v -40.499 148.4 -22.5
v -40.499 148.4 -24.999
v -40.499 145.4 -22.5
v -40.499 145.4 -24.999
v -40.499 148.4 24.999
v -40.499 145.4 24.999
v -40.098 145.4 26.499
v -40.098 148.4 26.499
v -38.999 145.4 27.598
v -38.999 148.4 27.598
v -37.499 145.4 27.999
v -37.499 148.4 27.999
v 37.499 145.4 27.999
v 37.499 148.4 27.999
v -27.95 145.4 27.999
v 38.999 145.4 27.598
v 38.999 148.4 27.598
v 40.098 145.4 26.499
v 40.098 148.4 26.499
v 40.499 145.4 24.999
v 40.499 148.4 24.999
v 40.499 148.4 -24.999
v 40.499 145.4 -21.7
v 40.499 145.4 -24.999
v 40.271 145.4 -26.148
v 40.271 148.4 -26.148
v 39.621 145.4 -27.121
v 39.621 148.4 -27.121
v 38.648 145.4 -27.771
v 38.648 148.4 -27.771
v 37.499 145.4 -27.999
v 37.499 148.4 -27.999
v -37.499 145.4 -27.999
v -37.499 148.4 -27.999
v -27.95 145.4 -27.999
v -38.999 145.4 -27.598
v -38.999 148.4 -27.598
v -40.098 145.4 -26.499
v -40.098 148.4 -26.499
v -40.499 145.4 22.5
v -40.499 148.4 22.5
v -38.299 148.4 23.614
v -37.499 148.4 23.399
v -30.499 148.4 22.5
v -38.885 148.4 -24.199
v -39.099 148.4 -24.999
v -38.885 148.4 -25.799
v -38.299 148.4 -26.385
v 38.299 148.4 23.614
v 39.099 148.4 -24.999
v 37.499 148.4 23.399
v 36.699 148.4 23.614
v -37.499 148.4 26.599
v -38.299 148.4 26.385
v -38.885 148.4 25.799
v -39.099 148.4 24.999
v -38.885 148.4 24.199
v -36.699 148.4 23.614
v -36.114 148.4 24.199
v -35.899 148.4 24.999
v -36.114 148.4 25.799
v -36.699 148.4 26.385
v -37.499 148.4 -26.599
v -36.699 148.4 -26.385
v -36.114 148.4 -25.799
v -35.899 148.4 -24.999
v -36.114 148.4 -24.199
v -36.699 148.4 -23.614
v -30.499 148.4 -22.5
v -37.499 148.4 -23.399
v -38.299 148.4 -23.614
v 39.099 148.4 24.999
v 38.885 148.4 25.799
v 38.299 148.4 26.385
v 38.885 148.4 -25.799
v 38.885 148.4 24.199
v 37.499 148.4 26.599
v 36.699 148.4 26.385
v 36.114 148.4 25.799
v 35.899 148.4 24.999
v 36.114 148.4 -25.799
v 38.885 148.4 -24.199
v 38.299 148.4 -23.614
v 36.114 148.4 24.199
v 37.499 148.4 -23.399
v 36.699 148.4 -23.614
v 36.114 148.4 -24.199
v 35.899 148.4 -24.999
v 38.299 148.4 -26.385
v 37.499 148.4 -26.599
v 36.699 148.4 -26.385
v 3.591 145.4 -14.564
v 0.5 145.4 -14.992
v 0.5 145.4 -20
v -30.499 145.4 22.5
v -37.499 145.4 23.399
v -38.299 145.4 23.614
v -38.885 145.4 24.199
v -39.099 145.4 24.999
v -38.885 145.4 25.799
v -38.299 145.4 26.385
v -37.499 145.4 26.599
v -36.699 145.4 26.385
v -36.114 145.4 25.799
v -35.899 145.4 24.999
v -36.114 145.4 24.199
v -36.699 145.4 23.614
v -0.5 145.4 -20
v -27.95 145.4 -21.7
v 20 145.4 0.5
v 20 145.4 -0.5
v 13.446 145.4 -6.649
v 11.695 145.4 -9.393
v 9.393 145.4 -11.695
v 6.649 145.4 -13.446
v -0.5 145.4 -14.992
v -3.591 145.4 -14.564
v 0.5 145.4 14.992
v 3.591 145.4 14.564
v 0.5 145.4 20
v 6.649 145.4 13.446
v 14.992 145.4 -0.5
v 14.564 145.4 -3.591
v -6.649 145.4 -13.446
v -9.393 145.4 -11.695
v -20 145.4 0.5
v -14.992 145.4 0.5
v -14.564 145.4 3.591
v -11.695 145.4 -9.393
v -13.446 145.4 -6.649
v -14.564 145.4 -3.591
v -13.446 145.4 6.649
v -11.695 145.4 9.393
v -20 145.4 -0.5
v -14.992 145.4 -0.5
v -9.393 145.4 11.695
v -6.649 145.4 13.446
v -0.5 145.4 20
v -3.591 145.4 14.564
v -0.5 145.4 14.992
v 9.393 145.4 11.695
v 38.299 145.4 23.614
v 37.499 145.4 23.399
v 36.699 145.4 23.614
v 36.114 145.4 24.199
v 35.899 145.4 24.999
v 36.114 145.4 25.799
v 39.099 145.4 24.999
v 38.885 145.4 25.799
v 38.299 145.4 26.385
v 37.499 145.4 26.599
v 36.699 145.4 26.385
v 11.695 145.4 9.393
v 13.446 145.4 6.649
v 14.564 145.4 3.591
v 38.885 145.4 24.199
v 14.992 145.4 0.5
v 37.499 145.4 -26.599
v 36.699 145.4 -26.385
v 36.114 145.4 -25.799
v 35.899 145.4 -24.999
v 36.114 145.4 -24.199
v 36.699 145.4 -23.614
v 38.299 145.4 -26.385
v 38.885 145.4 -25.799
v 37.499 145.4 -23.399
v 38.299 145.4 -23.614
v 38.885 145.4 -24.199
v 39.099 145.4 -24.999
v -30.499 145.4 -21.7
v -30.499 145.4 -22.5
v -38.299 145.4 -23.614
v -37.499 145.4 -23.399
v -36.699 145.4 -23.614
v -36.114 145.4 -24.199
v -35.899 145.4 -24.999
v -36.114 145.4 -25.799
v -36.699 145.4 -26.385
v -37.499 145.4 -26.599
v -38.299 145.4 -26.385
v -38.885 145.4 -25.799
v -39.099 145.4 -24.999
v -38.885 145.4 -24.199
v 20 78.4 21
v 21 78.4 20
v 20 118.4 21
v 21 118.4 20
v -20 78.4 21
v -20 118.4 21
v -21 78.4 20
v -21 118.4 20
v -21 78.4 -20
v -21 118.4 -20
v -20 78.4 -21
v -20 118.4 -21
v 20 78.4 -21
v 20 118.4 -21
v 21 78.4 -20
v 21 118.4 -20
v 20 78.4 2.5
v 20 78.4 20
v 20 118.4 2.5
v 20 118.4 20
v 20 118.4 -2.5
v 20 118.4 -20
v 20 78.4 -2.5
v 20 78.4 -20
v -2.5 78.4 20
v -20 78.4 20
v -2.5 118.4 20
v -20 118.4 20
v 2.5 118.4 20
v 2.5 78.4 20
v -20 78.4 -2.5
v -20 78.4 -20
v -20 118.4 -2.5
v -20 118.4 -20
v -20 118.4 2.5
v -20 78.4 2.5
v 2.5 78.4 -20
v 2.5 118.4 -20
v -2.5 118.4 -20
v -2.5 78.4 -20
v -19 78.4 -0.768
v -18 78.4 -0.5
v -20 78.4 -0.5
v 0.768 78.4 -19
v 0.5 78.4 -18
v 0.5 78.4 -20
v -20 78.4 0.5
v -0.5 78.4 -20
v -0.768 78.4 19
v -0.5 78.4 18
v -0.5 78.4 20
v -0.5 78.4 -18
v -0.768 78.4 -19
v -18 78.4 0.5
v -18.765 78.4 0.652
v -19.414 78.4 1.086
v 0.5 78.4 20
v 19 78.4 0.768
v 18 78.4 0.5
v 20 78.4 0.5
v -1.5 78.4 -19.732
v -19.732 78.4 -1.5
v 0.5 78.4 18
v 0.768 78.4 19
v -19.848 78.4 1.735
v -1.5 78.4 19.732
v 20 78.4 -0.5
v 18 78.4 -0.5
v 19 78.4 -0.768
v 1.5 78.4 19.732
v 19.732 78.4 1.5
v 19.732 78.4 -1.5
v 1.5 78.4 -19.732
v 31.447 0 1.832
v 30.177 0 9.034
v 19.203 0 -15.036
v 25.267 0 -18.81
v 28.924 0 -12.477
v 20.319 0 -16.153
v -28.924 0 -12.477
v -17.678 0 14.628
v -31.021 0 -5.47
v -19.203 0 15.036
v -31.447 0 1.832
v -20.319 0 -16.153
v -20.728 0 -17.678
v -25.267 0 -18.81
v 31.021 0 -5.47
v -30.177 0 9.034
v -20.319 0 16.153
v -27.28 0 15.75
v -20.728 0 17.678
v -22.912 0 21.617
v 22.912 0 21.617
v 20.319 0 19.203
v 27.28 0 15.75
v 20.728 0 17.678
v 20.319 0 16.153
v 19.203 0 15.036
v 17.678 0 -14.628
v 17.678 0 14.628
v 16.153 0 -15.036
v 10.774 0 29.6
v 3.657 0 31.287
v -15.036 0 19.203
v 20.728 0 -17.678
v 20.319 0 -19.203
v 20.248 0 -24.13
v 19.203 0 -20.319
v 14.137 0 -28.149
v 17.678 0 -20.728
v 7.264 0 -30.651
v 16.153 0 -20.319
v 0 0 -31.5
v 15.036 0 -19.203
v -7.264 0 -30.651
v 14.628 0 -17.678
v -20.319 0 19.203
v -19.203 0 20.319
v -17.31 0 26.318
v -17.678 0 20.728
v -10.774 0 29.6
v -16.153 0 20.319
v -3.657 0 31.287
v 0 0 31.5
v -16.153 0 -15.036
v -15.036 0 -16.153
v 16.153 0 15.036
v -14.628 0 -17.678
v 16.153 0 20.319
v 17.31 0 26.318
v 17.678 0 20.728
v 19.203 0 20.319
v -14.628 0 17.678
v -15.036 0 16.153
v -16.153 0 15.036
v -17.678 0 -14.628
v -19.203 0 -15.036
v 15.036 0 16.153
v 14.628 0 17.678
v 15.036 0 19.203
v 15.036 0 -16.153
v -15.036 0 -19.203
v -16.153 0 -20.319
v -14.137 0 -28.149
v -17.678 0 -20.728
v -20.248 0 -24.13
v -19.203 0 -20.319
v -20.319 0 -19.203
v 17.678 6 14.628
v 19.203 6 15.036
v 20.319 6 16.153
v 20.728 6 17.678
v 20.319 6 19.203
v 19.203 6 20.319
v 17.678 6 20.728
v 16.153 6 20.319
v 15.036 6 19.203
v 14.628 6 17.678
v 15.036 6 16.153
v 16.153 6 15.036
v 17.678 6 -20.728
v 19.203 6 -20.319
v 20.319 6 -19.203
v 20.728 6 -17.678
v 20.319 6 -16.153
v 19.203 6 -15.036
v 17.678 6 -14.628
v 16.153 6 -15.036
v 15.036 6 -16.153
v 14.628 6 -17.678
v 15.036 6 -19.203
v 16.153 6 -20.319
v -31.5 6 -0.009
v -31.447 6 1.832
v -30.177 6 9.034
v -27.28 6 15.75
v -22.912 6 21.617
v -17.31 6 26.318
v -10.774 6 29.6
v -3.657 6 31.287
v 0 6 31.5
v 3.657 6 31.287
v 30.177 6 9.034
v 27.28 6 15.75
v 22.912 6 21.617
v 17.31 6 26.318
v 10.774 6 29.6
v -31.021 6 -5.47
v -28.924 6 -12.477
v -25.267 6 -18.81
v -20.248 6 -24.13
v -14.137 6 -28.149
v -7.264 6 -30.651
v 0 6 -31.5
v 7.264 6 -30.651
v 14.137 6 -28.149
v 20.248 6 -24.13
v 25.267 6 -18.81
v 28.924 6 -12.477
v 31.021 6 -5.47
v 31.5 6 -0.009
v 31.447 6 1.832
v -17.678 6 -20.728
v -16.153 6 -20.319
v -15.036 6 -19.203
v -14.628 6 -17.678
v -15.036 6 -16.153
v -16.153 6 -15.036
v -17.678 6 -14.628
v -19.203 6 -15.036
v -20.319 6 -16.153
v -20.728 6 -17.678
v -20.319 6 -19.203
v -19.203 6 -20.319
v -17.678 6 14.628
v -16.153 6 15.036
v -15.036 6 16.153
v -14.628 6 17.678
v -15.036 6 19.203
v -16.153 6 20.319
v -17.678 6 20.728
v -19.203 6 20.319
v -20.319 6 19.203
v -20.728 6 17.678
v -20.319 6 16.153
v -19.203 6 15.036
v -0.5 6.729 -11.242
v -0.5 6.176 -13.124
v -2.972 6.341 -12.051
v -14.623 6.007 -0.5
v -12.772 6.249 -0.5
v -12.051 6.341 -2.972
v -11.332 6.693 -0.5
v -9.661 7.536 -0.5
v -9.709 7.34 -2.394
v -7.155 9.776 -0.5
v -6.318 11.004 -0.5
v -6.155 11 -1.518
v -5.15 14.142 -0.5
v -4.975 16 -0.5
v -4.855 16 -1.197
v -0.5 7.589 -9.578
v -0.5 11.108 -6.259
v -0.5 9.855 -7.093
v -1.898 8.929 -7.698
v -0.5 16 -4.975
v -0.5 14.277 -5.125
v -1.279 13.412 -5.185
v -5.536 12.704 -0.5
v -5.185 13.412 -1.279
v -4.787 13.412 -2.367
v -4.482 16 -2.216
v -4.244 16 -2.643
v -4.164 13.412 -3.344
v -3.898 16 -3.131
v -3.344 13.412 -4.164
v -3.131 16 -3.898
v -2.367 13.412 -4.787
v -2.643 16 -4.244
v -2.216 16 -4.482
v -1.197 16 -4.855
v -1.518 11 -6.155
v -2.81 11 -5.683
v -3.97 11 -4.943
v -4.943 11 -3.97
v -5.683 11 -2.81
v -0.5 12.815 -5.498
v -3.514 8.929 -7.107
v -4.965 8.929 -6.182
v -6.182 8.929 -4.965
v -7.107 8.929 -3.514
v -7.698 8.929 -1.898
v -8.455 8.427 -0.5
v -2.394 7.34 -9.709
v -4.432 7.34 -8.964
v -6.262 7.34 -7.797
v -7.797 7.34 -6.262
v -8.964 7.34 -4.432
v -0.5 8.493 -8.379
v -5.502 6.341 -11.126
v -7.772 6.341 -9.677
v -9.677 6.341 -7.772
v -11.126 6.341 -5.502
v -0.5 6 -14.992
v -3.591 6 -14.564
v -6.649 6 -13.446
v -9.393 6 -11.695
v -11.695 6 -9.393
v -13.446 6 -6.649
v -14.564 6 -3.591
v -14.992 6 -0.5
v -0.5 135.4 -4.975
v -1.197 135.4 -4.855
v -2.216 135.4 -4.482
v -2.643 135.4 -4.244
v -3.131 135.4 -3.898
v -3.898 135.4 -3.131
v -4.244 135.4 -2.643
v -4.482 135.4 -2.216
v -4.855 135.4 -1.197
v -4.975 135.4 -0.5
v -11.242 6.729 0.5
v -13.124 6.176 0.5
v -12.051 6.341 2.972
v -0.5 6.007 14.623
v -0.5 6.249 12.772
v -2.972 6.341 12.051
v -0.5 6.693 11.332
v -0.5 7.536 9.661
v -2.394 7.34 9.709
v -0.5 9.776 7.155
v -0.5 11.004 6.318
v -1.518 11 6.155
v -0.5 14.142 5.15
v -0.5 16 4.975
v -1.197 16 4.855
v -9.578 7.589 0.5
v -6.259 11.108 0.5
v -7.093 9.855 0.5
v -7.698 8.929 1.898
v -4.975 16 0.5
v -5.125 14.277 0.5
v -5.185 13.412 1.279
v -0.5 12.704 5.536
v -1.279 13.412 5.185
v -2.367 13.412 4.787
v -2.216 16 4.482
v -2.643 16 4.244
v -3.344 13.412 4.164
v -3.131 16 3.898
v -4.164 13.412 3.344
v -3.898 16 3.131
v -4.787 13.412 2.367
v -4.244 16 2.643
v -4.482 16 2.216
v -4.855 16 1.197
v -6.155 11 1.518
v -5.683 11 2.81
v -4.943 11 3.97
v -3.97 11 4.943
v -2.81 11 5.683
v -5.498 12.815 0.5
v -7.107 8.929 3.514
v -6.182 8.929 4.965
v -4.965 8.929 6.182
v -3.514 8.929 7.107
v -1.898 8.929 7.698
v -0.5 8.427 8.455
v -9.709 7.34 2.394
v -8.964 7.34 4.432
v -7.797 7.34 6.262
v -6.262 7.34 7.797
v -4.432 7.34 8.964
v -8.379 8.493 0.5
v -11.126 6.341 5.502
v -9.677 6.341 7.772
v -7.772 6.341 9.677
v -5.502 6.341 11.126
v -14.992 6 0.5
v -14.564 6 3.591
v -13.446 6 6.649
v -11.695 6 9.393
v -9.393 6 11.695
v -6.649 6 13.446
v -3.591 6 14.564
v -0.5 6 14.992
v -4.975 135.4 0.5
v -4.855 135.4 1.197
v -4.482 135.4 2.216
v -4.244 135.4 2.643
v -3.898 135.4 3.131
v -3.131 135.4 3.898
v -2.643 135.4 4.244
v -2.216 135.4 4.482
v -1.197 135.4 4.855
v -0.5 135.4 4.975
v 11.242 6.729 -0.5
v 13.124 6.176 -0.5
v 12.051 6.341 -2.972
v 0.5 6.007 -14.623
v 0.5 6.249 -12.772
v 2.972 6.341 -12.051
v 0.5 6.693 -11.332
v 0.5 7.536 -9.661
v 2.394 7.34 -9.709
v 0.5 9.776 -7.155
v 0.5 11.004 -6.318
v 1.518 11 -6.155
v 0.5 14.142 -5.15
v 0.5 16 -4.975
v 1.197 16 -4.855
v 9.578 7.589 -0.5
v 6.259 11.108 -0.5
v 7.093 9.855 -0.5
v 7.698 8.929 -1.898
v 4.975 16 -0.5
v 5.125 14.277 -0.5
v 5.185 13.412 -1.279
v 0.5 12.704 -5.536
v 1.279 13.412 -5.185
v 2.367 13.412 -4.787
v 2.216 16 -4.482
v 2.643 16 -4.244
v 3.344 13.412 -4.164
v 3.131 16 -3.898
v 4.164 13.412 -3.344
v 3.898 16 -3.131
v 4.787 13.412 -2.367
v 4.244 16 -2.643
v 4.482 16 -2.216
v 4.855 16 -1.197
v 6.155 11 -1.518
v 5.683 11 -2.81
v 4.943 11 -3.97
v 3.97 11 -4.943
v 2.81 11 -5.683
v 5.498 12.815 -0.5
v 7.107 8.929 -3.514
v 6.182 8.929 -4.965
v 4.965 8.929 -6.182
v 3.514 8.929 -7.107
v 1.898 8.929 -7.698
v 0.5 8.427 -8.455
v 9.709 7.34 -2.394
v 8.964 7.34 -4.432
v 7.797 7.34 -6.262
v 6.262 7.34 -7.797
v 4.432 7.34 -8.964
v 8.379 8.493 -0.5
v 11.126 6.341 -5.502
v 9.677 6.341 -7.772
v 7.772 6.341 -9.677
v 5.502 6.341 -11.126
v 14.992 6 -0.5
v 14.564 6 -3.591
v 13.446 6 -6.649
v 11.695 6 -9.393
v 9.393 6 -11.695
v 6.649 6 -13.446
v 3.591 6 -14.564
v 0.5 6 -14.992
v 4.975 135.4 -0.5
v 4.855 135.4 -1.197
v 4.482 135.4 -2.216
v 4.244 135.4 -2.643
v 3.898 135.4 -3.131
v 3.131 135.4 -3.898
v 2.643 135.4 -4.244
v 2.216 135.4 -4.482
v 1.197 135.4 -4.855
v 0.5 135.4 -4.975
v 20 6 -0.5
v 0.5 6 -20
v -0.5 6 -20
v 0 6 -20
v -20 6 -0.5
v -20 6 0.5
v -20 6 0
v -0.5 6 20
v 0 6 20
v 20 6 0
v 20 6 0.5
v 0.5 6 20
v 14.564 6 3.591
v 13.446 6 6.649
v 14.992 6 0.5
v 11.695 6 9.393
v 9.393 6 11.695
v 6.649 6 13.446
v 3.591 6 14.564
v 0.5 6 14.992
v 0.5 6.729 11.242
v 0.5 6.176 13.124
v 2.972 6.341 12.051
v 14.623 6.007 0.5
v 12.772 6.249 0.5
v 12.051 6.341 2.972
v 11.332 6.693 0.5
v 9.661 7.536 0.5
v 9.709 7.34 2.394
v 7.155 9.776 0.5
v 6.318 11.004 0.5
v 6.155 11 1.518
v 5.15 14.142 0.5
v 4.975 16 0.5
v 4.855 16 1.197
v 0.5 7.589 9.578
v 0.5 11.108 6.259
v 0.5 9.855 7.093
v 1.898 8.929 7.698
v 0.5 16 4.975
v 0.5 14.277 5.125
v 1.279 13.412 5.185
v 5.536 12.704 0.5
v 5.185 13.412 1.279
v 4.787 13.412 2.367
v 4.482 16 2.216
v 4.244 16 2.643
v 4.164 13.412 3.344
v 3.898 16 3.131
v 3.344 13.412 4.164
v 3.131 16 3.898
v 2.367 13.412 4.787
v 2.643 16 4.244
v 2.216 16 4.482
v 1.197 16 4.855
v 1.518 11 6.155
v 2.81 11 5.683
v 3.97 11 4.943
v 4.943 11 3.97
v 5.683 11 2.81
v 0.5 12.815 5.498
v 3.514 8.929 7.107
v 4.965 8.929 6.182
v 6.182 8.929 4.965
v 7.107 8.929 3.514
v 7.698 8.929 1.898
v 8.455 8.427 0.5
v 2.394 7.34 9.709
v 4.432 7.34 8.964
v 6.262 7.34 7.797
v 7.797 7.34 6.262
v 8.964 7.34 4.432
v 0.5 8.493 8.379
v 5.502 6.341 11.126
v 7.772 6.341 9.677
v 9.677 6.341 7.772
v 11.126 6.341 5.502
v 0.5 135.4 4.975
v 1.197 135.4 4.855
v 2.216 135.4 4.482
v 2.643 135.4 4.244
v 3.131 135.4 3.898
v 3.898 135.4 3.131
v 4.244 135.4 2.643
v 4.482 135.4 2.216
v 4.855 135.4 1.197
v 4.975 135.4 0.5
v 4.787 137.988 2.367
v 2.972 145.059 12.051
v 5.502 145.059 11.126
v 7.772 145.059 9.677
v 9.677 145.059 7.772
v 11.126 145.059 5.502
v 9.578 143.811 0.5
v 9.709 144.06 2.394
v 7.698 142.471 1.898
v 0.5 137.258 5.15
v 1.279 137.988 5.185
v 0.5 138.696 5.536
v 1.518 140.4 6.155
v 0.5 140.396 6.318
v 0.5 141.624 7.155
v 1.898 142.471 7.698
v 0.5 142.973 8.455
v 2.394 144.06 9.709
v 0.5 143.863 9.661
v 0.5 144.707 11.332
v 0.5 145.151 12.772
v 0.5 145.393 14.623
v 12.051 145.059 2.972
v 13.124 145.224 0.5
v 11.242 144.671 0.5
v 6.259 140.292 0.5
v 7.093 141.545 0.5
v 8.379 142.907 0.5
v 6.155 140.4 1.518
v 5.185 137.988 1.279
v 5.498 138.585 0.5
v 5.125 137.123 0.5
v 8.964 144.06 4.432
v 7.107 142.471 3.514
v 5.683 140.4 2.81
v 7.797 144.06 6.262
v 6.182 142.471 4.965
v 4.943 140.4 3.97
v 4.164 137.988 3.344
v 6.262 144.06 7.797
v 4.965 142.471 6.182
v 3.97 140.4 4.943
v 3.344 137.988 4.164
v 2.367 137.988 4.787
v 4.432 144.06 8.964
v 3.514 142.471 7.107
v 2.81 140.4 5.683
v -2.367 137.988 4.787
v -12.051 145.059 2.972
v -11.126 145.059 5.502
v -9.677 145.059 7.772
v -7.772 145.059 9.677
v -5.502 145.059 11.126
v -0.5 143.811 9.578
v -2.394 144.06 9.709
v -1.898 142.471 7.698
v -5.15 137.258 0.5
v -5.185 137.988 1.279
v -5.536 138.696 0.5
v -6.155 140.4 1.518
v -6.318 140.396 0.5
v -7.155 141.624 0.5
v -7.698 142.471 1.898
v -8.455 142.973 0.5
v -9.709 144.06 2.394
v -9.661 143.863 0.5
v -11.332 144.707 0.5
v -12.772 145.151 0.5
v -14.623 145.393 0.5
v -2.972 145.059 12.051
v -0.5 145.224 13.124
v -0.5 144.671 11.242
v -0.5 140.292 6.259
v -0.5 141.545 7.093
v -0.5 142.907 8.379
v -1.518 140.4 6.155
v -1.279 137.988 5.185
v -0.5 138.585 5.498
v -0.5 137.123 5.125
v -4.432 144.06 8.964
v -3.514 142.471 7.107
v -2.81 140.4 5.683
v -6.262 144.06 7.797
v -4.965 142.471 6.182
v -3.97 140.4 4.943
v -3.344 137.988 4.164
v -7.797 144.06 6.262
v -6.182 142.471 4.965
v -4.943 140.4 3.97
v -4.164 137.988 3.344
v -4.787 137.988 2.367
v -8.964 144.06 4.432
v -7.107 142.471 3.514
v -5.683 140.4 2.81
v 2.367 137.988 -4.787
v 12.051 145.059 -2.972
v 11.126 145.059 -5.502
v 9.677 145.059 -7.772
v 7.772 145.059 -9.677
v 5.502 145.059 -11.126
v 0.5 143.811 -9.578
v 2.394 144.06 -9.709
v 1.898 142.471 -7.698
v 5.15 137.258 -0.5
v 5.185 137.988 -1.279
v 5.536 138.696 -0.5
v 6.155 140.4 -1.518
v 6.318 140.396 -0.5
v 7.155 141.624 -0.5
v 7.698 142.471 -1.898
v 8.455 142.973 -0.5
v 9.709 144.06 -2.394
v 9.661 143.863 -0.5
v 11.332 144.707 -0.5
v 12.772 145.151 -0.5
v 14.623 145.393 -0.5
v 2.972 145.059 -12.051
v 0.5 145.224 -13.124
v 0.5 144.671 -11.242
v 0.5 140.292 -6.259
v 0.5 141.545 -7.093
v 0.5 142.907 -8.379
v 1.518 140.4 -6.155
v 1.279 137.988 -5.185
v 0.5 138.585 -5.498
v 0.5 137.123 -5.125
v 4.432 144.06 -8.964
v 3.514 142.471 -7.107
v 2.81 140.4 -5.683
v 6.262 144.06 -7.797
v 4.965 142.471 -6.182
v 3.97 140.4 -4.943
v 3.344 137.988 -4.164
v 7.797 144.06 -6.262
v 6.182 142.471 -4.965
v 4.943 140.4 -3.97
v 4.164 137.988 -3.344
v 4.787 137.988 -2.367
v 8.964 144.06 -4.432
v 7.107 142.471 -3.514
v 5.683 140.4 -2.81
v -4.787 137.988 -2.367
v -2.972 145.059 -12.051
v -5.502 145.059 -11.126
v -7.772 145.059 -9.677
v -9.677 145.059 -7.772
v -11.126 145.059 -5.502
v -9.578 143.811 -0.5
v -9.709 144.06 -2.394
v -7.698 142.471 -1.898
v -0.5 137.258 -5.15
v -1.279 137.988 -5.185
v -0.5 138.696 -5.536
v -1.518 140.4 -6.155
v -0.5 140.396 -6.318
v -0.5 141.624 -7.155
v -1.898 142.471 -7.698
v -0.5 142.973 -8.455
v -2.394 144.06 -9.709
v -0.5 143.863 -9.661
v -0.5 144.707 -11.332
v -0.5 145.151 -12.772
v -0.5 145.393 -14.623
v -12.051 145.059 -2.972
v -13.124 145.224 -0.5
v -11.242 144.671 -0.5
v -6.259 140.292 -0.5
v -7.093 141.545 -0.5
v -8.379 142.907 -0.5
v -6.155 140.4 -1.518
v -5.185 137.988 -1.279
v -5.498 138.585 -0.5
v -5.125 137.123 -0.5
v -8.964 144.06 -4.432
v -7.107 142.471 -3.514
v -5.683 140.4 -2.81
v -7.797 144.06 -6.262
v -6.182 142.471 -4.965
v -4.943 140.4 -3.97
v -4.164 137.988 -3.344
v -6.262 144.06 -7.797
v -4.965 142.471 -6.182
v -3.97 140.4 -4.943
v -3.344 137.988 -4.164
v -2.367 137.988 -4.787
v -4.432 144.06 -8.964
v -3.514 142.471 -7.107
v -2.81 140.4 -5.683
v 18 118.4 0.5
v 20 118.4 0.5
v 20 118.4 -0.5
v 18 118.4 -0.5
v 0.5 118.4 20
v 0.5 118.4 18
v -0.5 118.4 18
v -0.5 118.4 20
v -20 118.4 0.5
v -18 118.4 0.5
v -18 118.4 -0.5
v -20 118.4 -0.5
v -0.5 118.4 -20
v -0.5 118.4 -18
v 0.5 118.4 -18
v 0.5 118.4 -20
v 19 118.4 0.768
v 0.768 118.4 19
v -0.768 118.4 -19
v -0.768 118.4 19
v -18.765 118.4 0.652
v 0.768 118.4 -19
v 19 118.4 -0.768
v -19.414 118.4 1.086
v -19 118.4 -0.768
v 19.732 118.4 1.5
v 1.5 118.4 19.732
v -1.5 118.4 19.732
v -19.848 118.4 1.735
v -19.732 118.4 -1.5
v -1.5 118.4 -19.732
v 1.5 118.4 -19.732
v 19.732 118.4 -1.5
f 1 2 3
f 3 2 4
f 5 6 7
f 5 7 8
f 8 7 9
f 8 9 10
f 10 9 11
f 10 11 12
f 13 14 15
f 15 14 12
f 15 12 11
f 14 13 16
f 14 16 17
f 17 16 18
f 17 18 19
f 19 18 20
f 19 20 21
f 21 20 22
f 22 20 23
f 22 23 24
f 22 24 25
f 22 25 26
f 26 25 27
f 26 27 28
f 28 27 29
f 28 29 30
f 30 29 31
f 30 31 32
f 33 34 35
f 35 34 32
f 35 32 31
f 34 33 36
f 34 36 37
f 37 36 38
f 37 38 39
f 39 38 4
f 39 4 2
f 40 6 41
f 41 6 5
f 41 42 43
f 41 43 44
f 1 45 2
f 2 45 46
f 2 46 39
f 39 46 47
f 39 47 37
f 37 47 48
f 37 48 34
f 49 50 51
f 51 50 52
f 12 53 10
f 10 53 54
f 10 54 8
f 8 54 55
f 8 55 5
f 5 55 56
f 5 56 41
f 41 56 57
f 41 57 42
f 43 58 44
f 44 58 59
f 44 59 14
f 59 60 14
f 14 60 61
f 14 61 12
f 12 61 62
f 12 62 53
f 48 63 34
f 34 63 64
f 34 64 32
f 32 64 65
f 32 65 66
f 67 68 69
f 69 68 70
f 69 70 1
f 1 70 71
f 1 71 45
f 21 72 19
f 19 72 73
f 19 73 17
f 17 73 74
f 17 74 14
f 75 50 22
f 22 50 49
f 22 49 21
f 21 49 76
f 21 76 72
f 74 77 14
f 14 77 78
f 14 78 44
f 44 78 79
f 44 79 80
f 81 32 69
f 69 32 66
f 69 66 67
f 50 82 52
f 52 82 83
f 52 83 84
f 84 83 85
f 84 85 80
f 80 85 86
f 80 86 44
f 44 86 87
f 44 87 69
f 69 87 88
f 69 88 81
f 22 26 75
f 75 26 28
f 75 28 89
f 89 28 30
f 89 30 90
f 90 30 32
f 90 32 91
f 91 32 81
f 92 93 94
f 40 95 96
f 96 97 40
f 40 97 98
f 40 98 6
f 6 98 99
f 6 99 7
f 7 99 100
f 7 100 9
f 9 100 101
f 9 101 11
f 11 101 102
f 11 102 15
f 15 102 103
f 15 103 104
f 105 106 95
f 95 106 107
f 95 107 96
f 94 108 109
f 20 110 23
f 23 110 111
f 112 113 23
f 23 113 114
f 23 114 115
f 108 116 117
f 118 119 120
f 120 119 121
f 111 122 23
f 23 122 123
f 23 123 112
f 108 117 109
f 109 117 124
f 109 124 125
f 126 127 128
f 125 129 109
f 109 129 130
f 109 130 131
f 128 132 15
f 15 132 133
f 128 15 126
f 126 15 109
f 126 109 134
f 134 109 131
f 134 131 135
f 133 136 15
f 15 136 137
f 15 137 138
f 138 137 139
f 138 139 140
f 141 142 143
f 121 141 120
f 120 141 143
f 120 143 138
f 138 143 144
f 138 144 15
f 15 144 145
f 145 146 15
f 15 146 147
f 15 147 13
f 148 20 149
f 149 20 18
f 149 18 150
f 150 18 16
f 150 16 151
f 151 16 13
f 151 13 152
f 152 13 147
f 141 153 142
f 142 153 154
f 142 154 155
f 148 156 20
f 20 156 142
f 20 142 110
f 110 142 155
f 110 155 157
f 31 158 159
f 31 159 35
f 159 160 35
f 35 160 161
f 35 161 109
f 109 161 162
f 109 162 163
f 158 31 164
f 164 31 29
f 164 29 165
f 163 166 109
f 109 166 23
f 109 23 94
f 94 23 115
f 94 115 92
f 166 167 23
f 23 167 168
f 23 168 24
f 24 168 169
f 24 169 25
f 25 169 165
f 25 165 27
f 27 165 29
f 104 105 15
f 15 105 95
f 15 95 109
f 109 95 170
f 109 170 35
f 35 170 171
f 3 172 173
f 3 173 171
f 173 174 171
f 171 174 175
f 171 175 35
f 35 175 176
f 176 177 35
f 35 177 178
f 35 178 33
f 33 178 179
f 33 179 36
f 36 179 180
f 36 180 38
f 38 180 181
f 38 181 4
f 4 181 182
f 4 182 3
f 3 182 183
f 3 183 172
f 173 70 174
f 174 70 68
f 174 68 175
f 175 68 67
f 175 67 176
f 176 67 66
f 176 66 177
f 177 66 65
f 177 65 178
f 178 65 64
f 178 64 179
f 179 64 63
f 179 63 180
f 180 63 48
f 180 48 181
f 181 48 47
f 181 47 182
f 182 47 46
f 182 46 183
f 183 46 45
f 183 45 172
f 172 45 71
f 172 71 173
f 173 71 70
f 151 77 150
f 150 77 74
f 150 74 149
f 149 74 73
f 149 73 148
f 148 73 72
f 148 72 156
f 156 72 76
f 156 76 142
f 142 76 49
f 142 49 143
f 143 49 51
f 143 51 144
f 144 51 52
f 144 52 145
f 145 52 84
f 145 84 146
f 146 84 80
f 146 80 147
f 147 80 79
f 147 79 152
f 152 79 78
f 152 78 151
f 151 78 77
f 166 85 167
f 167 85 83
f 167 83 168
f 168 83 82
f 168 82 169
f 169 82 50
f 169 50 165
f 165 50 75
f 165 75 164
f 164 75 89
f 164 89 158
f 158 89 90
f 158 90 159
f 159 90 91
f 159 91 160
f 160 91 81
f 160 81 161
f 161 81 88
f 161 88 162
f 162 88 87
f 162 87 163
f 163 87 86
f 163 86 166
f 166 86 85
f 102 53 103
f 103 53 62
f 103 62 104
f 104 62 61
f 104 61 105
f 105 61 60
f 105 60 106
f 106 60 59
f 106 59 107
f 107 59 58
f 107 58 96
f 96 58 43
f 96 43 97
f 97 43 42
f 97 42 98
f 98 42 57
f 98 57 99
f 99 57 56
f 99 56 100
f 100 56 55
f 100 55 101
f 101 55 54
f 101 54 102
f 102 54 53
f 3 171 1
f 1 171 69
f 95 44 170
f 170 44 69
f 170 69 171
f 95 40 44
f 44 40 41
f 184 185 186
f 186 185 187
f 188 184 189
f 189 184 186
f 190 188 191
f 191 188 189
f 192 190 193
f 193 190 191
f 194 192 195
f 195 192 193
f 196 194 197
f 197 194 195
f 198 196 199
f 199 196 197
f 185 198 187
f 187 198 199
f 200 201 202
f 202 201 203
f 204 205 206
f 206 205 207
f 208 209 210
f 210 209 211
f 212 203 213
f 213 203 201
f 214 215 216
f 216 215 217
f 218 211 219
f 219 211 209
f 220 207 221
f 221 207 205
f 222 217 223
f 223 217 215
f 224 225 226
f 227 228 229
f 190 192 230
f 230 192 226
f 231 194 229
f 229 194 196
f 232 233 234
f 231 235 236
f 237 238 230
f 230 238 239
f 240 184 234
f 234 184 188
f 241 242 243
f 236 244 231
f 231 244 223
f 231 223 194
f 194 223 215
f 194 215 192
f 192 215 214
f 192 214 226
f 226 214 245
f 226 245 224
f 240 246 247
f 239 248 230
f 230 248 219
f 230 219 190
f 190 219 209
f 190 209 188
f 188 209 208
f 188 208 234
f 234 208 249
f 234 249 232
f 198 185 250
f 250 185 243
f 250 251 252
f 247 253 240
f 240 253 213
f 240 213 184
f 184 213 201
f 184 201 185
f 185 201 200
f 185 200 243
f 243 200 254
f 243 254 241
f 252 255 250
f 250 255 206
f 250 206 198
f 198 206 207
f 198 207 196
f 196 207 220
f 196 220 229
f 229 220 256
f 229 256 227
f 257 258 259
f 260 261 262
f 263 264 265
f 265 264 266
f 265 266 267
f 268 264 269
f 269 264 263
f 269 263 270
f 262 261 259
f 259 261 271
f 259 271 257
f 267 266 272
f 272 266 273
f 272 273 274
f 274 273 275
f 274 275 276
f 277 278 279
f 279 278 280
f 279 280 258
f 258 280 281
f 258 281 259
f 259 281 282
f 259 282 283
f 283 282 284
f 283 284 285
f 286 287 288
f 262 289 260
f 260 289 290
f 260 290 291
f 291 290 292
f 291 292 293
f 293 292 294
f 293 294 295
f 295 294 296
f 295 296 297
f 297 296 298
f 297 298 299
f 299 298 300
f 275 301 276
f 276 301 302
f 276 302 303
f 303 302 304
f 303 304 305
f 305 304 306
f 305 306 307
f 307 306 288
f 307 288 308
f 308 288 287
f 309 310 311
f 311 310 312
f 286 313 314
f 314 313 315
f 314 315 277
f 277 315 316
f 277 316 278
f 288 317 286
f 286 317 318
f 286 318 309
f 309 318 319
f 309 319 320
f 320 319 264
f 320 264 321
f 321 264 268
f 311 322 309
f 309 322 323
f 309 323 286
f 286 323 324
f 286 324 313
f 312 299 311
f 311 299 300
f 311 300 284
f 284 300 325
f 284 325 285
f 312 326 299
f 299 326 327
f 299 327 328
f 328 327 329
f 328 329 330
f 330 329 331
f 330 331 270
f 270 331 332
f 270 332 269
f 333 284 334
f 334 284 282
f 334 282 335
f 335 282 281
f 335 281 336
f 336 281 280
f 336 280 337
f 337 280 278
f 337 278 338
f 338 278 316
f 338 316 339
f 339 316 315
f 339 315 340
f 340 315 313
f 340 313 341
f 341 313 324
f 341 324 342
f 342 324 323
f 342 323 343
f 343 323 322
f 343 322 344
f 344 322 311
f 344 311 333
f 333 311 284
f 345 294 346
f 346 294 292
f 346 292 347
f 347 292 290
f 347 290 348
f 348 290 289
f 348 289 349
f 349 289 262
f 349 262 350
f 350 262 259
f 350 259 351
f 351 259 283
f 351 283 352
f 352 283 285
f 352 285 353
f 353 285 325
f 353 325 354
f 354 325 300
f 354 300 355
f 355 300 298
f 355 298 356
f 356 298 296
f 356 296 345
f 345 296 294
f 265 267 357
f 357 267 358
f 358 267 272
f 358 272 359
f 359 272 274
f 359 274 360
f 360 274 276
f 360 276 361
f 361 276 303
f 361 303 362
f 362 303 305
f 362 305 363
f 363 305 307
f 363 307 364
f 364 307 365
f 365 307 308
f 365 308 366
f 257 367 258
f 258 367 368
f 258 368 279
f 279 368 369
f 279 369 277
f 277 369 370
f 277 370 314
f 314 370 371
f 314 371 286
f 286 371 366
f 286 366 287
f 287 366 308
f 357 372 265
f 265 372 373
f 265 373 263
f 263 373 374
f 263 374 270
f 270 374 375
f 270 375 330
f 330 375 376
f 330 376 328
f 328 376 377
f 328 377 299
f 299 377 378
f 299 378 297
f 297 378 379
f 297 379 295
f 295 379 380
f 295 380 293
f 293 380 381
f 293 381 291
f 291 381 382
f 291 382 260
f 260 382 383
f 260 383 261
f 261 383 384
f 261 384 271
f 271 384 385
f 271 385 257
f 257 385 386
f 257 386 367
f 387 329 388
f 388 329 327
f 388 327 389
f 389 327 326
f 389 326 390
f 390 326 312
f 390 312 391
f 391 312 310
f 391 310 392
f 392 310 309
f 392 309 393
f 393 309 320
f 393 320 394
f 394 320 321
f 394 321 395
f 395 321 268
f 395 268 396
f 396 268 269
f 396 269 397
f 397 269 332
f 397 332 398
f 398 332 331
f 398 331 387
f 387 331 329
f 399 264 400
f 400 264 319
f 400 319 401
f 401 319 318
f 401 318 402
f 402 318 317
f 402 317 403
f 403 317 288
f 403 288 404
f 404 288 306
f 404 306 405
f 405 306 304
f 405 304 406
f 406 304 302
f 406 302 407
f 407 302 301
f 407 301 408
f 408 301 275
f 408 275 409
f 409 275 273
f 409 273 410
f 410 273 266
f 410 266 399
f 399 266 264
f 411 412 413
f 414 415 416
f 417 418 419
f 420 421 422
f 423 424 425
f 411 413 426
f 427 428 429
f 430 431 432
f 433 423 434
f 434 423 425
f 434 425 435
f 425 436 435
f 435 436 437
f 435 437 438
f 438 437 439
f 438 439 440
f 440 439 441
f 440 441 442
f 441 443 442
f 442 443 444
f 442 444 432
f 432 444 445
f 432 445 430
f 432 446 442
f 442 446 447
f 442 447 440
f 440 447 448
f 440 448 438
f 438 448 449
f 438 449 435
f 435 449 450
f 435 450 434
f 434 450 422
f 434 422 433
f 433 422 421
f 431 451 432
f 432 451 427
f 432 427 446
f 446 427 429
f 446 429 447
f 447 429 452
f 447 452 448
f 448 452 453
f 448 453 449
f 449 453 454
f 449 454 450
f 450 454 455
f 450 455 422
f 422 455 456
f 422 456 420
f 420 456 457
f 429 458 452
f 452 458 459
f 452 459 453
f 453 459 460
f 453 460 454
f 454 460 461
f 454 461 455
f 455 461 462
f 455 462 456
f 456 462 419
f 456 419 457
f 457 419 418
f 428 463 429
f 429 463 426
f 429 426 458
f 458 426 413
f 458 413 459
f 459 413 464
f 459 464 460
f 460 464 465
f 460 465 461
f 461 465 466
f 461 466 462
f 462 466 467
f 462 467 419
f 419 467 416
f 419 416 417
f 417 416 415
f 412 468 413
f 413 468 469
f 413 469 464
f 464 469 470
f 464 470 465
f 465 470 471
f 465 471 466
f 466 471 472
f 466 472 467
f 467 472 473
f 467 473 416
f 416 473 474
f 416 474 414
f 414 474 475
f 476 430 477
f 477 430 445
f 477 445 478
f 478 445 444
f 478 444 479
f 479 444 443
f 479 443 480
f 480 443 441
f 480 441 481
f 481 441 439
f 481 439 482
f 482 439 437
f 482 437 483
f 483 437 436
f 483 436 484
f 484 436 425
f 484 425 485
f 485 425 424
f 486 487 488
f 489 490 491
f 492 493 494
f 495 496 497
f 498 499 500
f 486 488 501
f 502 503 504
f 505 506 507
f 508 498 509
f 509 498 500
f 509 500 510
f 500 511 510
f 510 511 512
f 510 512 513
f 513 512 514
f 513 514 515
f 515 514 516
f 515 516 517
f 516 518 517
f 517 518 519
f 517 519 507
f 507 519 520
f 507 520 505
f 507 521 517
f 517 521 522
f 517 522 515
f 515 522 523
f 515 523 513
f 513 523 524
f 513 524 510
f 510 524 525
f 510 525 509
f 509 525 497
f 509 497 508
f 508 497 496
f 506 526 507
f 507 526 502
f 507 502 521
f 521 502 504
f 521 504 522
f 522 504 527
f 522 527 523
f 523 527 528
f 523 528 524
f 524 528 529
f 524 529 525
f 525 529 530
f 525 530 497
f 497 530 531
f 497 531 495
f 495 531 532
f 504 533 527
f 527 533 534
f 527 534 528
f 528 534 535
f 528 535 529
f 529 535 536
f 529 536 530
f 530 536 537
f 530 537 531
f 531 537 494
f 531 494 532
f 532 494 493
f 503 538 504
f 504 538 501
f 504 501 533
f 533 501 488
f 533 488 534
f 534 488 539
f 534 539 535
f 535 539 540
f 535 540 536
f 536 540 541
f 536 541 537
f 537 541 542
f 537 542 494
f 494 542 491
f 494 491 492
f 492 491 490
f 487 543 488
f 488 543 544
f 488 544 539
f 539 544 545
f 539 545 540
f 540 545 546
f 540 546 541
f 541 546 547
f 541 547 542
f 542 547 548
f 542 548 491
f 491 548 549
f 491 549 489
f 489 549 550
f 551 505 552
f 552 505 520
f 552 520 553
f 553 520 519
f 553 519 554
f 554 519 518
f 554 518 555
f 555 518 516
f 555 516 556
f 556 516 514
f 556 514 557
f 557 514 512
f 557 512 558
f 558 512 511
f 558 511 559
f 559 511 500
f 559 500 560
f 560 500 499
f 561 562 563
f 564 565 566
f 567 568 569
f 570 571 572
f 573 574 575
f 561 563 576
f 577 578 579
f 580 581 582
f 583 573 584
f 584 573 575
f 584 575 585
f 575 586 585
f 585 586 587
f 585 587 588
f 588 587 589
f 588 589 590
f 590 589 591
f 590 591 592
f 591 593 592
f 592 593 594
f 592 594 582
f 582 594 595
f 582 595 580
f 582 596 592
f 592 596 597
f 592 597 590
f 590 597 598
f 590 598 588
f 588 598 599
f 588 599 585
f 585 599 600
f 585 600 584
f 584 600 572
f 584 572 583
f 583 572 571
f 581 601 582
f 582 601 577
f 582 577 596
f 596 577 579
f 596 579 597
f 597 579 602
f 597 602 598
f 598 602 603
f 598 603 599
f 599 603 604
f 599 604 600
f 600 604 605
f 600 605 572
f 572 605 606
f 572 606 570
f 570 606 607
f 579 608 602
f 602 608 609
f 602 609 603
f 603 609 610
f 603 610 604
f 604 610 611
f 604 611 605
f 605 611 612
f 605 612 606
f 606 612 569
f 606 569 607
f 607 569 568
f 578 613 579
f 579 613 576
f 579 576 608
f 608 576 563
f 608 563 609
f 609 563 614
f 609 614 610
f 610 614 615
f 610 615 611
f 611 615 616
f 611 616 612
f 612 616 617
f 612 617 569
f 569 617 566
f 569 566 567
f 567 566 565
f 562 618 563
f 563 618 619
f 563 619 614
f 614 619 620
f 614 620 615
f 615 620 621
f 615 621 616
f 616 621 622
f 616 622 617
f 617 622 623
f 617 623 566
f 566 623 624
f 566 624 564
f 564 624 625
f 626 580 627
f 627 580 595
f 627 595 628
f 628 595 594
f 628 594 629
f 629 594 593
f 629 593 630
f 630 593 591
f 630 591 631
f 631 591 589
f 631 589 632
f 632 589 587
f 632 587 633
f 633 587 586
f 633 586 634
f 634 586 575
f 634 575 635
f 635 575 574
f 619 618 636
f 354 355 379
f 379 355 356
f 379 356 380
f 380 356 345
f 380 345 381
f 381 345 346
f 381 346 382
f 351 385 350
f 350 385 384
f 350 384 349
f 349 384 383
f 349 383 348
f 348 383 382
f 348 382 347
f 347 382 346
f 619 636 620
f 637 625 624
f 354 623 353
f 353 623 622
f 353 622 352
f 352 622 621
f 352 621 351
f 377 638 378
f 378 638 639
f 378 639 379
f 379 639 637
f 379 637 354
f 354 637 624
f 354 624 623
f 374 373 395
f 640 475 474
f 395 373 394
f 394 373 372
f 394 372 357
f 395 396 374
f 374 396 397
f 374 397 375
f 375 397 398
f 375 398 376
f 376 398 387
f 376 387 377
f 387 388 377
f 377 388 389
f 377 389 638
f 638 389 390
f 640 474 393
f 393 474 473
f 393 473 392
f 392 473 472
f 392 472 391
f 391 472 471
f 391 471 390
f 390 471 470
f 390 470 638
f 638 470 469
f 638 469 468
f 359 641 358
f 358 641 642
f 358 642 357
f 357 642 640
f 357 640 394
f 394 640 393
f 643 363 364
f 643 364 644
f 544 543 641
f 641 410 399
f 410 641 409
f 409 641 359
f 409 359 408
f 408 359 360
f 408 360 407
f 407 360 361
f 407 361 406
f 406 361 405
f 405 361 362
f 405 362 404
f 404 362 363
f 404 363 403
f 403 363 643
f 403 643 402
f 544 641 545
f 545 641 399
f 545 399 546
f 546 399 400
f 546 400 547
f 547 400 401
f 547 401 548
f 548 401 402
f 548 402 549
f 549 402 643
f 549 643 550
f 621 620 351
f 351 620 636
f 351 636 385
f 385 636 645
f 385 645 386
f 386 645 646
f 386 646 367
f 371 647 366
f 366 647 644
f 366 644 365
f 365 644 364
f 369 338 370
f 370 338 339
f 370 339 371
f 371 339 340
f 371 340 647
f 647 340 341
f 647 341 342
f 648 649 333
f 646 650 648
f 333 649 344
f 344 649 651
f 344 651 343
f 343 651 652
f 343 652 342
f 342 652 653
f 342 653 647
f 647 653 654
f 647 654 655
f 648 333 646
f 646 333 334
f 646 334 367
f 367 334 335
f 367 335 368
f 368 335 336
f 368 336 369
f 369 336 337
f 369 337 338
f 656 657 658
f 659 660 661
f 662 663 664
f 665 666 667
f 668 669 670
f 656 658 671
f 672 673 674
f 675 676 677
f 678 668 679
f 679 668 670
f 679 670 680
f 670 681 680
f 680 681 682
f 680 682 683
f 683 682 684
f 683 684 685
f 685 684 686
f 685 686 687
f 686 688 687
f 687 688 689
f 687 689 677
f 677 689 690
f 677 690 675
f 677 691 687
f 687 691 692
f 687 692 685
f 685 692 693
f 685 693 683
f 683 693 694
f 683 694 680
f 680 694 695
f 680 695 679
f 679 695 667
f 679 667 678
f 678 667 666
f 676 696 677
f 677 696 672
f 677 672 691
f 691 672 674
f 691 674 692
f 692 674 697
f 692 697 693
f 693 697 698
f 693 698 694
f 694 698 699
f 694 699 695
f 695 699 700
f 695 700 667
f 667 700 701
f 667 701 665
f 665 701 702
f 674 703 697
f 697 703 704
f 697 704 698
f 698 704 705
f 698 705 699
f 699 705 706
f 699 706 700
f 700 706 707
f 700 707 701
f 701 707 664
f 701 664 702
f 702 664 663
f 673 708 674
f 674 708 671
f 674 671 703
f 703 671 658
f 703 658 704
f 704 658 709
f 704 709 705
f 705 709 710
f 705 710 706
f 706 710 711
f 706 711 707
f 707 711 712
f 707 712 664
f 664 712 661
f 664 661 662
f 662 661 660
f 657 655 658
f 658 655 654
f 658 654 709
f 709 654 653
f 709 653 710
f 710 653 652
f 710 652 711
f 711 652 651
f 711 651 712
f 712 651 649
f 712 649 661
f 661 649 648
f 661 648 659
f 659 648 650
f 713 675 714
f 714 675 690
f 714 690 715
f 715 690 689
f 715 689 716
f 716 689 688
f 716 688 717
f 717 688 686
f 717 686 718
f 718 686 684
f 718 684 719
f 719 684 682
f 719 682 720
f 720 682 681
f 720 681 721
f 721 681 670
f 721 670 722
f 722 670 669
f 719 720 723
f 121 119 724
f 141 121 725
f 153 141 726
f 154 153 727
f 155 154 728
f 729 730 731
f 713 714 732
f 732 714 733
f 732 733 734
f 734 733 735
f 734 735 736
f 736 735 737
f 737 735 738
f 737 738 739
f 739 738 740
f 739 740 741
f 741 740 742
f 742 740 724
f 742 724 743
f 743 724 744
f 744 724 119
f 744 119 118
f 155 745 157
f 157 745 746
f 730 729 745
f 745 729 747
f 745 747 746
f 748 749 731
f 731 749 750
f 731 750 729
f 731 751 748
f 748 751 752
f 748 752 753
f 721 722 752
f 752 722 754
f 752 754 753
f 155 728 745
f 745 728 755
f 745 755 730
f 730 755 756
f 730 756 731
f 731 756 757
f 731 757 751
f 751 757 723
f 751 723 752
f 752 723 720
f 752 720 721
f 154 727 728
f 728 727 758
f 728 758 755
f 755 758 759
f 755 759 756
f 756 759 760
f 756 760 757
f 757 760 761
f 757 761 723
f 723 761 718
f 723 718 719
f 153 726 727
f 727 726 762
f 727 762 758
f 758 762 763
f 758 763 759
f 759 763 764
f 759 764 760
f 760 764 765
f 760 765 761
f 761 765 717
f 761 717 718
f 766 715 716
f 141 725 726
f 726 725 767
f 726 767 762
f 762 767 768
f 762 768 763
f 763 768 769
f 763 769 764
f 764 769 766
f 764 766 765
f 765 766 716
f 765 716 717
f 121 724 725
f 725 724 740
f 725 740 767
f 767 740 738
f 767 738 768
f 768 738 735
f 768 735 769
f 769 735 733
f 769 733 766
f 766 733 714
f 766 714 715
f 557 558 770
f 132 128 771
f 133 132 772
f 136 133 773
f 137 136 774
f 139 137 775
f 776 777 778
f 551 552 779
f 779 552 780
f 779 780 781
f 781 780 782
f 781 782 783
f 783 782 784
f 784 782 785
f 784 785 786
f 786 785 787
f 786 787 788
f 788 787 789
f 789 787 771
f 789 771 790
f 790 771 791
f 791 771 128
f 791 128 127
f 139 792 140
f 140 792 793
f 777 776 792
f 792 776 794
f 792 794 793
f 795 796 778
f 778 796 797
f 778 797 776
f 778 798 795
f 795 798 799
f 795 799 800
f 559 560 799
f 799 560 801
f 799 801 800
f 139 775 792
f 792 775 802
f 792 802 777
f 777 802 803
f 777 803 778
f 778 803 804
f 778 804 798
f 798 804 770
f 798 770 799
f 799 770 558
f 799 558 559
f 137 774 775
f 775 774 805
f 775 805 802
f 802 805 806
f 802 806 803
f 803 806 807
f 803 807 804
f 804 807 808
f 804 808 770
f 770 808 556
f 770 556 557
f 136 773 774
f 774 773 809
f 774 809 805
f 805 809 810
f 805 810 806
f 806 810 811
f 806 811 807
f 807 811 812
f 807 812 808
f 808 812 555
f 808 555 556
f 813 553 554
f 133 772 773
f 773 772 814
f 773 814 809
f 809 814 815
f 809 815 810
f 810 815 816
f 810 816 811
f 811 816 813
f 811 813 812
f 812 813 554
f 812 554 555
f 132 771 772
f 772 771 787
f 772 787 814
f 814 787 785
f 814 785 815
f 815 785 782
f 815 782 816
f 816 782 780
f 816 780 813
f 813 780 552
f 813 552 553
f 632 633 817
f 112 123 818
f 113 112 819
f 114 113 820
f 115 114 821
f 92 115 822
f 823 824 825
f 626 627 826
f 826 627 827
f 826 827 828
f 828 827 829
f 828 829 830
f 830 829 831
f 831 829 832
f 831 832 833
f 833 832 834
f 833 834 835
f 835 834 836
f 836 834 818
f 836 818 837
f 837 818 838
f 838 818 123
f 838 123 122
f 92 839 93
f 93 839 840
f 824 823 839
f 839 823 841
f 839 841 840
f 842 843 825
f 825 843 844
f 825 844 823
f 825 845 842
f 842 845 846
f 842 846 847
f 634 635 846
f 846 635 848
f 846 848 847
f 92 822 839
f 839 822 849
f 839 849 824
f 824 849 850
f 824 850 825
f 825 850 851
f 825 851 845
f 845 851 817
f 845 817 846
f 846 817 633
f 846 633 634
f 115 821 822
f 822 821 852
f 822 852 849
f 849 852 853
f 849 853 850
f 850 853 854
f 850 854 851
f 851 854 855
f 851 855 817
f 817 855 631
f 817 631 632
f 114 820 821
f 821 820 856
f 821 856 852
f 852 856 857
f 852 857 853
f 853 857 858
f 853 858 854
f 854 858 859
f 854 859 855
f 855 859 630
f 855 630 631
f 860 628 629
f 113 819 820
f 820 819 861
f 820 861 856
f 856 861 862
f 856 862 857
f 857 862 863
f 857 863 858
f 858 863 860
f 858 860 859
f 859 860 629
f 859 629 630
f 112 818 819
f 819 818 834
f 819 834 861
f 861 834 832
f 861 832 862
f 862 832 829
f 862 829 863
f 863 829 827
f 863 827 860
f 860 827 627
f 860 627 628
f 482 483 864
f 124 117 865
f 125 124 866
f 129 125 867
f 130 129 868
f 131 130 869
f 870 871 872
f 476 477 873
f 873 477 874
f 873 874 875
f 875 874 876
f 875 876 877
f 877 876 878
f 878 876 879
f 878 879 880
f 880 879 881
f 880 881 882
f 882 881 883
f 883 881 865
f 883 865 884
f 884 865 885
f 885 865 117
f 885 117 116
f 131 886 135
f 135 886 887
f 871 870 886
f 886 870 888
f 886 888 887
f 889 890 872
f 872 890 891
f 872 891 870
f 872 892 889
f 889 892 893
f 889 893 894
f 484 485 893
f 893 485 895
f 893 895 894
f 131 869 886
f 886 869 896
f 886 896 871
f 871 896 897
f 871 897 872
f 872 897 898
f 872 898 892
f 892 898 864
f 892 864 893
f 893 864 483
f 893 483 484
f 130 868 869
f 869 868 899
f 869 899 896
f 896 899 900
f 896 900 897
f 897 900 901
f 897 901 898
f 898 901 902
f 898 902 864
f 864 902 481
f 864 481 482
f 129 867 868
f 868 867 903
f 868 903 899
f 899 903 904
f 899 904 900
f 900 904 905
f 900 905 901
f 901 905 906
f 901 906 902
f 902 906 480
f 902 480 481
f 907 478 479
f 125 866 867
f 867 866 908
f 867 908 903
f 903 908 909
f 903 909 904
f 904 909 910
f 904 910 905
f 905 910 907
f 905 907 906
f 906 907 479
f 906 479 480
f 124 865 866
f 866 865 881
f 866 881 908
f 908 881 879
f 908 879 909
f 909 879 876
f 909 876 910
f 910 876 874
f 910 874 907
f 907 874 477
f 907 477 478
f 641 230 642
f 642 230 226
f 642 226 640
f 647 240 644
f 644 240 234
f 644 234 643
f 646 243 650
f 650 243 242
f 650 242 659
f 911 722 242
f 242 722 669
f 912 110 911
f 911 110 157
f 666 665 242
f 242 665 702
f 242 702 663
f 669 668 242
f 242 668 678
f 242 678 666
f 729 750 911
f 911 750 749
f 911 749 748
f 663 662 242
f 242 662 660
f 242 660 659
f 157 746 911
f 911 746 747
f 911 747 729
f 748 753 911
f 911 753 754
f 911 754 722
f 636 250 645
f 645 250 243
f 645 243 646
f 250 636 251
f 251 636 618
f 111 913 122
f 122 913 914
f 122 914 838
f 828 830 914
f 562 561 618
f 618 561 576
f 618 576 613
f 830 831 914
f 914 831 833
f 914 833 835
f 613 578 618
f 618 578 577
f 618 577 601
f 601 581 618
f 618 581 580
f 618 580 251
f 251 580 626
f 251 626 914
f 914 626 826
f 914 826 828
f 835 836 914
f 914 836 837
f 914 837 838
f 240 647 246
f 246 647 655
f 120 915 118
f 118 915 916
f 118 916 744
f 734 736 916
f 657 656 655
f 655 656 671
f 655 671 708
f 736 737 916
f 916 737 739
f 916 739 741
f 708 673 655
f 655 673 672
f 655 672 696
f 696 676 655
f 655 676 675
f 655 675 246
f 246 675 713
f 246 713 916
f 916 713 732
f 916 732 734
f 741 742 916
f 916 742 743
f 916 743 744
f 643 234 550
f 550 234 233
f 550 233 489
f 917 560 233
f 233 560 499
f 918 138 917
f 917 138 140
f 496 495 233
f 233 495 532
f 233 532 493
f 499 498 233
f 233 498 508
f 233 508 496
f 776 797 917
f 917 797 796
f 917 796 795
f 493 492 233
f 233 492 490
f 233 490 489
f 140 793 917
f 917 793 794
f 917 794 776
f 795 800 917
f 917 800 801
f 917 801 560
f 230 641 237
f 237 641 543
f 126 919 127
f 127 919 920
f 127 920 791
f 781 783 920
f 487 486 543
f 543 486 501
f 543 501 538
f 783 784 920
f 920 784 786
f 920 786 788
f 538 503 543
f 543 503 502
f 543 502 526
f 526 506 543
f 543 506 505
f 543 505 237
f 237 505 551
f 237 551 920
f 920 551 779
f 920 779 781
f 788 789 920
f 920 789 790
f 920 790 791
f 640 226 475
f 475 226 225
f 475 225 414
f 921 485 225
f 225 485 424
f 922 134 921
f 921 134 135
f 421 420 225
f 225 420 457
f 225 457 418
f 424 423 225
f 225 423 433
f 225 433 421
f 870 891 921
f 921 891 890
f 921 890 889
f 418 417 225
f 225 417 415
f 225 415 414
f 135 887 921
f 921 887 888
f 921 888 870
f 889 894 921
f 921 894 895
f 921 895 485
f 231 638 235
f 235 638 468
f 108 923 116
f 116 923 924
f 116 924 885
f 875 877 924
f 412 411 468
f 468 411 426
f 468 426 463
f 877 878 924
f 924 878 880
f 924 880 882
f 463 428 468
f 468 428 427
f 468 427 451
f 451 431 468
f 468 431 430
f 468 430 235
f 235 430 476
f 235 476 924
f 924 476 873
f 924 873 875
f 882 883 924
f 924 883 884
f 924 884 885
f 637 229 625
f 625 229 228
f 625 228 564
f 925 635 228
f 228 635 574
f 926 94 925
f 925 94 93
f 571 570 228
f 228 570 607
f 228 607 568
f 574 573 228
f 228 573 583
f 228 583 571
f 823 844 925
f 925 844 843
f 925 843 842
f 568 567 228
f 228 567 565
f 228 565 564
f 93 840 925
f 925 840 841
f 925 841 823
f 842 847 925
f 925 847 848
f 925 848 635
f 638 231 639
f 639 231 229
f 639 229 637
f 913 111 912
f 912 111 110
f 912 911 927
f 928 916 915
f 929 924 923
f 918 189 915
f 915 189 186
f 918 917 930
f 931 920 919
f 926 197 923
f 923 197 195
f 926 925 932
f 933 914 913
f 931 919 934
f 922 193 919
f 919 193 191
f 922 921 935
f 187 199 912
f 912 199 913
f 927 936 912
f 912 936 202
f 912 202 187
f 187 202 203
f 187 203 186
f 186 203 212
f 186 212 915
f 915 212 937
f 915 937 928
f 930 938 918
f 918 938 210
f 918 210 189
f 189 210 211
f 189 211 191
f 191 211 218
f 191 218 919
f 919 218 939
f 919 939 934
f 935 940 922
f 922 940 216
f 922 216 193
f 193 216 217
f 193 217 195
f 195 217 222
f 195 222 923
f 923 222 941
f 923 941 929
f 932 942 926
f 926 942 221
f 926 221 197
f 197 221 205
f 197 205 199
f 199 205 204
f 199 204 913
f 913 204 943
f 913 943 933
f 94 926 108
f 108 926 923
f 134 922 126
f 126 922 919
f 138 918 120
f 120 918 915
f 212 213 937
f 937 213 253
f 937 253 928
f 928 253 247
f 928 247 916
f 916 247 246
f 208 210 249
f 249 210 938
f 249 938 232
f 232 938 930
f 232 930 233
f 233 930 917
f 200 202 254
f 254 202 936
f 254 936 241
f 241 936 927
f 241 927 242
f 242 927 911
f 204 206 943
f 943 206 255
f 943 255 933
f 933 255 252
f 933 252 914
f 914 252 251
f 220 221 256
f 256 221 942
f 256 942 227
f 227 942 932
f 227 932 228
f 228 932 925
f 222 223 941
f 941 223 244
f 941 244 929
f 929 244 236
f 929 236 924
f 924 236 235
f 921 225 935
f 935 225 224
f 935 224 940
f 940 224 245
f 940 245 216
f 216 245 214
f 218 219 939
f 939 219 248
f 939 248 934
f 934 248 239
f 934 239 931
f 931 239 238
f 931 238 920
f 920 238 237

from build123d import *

# Parameters (mm, degrees)
SKETCH_1_R               = 31.5
SKETCH_1_R_2             = 3.05
EXTRUDE_3_DEPTH          = 6
SKETCH_4_R               = 5
EXTRUDE_5_DEPTH          = 145.4
SKETCH_8_W               = 20
SKETCH_8_H               = 145.4
EXTRUDE_8_DEPTH          = 0.5
PATTERN_CIRCULAR_1_COUNT = 4
FILLET_1_R               = 10
EXTRUDE_10_DEPTH         = 3
SKETCH_11_R              = 1.6
CUT_EXTRUDE_1_DEPTH      = 3
SKETCH_12_W              = 10
SKETCH_12_H              = 45
CUT_EXTRUDE_2_DEPTH      = 3
FILLET_3_R               = 10
SKETCH_18_W              = 40
SKETCH_18_H              = 40
EXTRUDE_18_DEPTH         = 70
SKETCH_19_W              = 42
SKETCH_19_H              = 27
CUT_EXTRUDE_3_DEPTH      = 1
SKETCH_20_W              = 42
SKETCH_20_H              = 27
CUT_EXTRUDE_4_DEPTH      = 1
SKETCH_21_W              = 42
SKETCH_21_H              = 27
CUT_EXTRUDE_5_DEPTH      = 1
SKETCH_22_W              = 41
SKETCH_22_H              = 27
CUT_EXTRUDE_6_DEPTH      = 1
FILLET_4_R               = 2


with BuildPart() as part:
    # 草图1 → 凸台-拉伸3 (new body)
    with BuildSketch(Plane(origin=(0, 0, 0), x_dir=(1, 0, 0), z_dir=(0, 1, 0))):
        with Locations(Location((0, 0, 0), (0, 0, 270))):
            Circle(SKETCH_1_R)
        with Locations(Location((-17.67766953, 17.67766953, 0), (0, 0, 270))):
            Circle(SKETCH_1_R_2, mode=Mode.SUBTRACT)
        with Locations(Location((17.67766953, 17.67766953, 0), (0, 0, 270))):
            Circle(SKETCH_1_R_2, mode=Mode.SUBTRACT)
        with Locations(Location((-17.67766953, -17.67766953, 0), (0, 0, 270))):
            Circle(SKETCH_1_R_2, mode=Mode.SUBTRACT)
        with Locations(Location((17.67766953, -17.67766953, 0), (0, 0, 270))):
            Circle(SKETCH_1_R_2, mode=Mode.SUBTRACT)
    extrude(amount=EXTRUDE_3_DEPTH)

    # 草图4 → 凸台-拉伸5 (add)
    with BuildSketch(Plane.XZ):
        with Locations(Location((0, 0, 0), (0, 0, 270))):
            Circle(SKETCH_4_R)
    extrude(amount=-EXTRUDE_5_DEPTH)

    # 草图8 → 凸台-拉伸8 (add, symmetric)
    with BuildSketch(Plane(origin=(0, 0, 0), x_dir=(0, 0, -1), z_dir=(1, 0, 0))):
        with Locations((10, 72.7)):
            Rectangle(SKETCH_8_W, SKETCH_8_H)
    extrude_8 = extrude(amount=EXTRUDE_8_DEPTH, both=True)

    # 阵列(圆周)1: 凸台-拉伸8 ×4 about axis
    pattern_circular_1_axis = Axis((0, 0, 0), (0, 1, 0))
    for i in range(1, PATTERN_CIRCULAR_1_COUNT):
        add(extrude_8.rotate(pattern_circular_1_axis, i * 360 / PATTERN_CIRCULAR_1_COUNT))

    # 圆角1
    fillet_1_edges = [part.edges().sort_by_distance(p)[0] for p in [
        (-3.535533906, 6, -3.535533906),
        (-3.535533906, 6, 3.535533906),
        (3.535533906, 6, 3.535533906),
        (3.535533906, 6, -3.535533906),
    ]]
    fillet(fillet_1_edges, radius=FILLET_1_R)

    # 草图10 → 凸台-拉伸10 (add)
    with BuildSketch(Plane(origin=(0, 145.4, 0), x_dir=(1, 0, 0), z_dir=(0, 1, 0))):
        with BuildLine():
            Line((-37.499452899, -27.999452899), (37.499452899, -27.999452899))
            ThreePointArc((37.499452899, -27.999452899), (39.620773242, -27.120773242), (40.499452899, -24.999452899))
            Line((40.499452899, -24.999452899), (40.499452899, 24.999452899))
            ThreePointArc((40.499452899, 24.999452899), (39.620773242, 27.120773242), (37.499452899, 27.999452899))
            Line((37.499452899, 27.999452899), (-37.499452899, 27.999452899))
            ThreePointArc((-37.499452899, 27.999452899), (-39.620773242, 27.120773242), (-40.499452899, 24.999452899))
            Line((-40.499452899, 24.999452899), (-40.499452899, -24.999452899))
            ThreePointArc((-40.499452899, -24.999452899), (-39.620773242, -27.120773242), (-37.499452899, -27.999452899))
        make_face()
    extrude(amount=EXTRUDE_10_DEPTH)

    # 草图11 → 切除-拉伸1 (cut)
    with BuildSketch(Plane(origin=(0, 148.4, 0), x_dir=(1, 0, 0), z_dir=(0, 1, 0))):
        with Locations(Location((-37.499452899, 24.999452899, 0), (0, 0, 270))):
            Circle(SKETCH_11_R)
        with Locations(Location((-37.499452899, -24.999452899, 0), (0, 0, 270))):
            Circle(SKETCH_11_R)
        with Locations(Location((37.499452899, 24.999452899, 0), (0, 0, 270))):
            Circle(SKETCH_11_R)
        with Locations(Location((37.499452899, -24.999452899, 0), (0, 0, 270))):
            Circle(SKETCH_11_R)
    extrude(amount=-CUT_EXTRUDE_1_DEPTH, mode=Mode.SUBTRACT)

    # 草图12 → 切除-拉伸2 (cut)
    with BuildSketch(Plane(origin=(0, 148.4, 0), x_dir=(1, 0, 0), z_dir=(0, 1, 0))):
        with Locations((-35.499452899, 0)):
            Rectangle(SKETCH_12_W, SKETCH_12_H)
    extrude(amount=-CUT_EXTRUDE_2_DEPTH, mode=Mode.SUBTRACT)

    # 圆角3
    fillet_3_edges = [part.edges().sort_by_distance(p)[0] for p in [
        (3.535533906, 145.4, -3.535533906),
        (3.535533906, 145.4, 3.535533906),
        (-3.535533906, 145.4, 3.535533906),
        (-3.535533906, 145.4, -3.535533906),
    ]]
    fillet(fillet_3_edges, radius=FILLET_3_R)

    # 草图18 → 凸台-拉伸18 (add)
    with BuildSketch(Plane(origin=(0, 148.4, 0), x_dir=(1, 0, 0), z_dir=(0, 1, 0))):
        Polygon((-20, 21), (-21, 20), (-21, -20), (-20, -21), (20, -21), (21, -20), (21, 20), (20, 21), align=None)
        Rectangle(SKETCH_18_W, SKETCH_18_H, mode=Mode.SUBTRACT)
    extrude(amount=-EXTRUDE_18_DEPTH)

    # 草图19 → 切除-拉伸3 (cut)
    with BuildSketch(Plane(origin=(21, 0, 0), x_dir=(0, 0, -1), z_dir=(1, 0, 0))):
        with Locations((0, 131.9)):
            Rectangle(SKETCH_19_W, SKETCH_19_H)
    extrude(amount=-CUT_EXTRUDE_3_DEPTH, mode=Mode.SUBTRACT)

    # 草图20 → 切除-拉伸4 (cut)
    with BuildSketch(Plane(origin=(0, 0, -21), x_dir=(-1, 0, 0), z_dir=(0, 0, -1))):
        with Locations((0, 131.9)):
            Rectangle(SKETCH_20_W, SKETCH_20_H)
    extrude(amount=-CUT_EXTRUDE_4_DEPTH, mode=Mode.SUBTRACT)

    # 草图21 → 切除-拉伸5 (cut)
    with BuildSketch(Plane.ZY.offset(21)):
        with Locations((0, 131.9)):
            Rectangle(SKETCH_21_W, SKETCH_21_H)
    extrude(amount=-CUT_EXTRUDE_5_DEPTH, mode=Mode.SUBTRACT)

    # 草图22 → 切除-拉伸6 (cut)
    with BuildSketch(Plane.XY.offset(21)):
        with Locations((-0.5, 131.9)):
            Rectangle(SKETCH_22_W, SKETCH_22_H)
    extrude(amount=-CUT_EXTRUDE_6_DEPTH, mode=Mode.SUBTRACT)

    # 圆角4
    fillet_4_edges = [part.edges().sort_by_distance(p)[0] for p in [
        (20, 98.4, -0.5),
        (20, 98.4, 0.5),
        (0.5, 98.4, -20),
        (-0.5, 98.4, -20),
        (-20, 98.4, -0.5),
        (-20, 98.4, 0.5),
        (-0.5, 98.4, 20),
        (0.5, 98.4, 20),
    ]]
    fillet(fillet_4_edges, radius=FILLET_4_R)


solid = part.part
